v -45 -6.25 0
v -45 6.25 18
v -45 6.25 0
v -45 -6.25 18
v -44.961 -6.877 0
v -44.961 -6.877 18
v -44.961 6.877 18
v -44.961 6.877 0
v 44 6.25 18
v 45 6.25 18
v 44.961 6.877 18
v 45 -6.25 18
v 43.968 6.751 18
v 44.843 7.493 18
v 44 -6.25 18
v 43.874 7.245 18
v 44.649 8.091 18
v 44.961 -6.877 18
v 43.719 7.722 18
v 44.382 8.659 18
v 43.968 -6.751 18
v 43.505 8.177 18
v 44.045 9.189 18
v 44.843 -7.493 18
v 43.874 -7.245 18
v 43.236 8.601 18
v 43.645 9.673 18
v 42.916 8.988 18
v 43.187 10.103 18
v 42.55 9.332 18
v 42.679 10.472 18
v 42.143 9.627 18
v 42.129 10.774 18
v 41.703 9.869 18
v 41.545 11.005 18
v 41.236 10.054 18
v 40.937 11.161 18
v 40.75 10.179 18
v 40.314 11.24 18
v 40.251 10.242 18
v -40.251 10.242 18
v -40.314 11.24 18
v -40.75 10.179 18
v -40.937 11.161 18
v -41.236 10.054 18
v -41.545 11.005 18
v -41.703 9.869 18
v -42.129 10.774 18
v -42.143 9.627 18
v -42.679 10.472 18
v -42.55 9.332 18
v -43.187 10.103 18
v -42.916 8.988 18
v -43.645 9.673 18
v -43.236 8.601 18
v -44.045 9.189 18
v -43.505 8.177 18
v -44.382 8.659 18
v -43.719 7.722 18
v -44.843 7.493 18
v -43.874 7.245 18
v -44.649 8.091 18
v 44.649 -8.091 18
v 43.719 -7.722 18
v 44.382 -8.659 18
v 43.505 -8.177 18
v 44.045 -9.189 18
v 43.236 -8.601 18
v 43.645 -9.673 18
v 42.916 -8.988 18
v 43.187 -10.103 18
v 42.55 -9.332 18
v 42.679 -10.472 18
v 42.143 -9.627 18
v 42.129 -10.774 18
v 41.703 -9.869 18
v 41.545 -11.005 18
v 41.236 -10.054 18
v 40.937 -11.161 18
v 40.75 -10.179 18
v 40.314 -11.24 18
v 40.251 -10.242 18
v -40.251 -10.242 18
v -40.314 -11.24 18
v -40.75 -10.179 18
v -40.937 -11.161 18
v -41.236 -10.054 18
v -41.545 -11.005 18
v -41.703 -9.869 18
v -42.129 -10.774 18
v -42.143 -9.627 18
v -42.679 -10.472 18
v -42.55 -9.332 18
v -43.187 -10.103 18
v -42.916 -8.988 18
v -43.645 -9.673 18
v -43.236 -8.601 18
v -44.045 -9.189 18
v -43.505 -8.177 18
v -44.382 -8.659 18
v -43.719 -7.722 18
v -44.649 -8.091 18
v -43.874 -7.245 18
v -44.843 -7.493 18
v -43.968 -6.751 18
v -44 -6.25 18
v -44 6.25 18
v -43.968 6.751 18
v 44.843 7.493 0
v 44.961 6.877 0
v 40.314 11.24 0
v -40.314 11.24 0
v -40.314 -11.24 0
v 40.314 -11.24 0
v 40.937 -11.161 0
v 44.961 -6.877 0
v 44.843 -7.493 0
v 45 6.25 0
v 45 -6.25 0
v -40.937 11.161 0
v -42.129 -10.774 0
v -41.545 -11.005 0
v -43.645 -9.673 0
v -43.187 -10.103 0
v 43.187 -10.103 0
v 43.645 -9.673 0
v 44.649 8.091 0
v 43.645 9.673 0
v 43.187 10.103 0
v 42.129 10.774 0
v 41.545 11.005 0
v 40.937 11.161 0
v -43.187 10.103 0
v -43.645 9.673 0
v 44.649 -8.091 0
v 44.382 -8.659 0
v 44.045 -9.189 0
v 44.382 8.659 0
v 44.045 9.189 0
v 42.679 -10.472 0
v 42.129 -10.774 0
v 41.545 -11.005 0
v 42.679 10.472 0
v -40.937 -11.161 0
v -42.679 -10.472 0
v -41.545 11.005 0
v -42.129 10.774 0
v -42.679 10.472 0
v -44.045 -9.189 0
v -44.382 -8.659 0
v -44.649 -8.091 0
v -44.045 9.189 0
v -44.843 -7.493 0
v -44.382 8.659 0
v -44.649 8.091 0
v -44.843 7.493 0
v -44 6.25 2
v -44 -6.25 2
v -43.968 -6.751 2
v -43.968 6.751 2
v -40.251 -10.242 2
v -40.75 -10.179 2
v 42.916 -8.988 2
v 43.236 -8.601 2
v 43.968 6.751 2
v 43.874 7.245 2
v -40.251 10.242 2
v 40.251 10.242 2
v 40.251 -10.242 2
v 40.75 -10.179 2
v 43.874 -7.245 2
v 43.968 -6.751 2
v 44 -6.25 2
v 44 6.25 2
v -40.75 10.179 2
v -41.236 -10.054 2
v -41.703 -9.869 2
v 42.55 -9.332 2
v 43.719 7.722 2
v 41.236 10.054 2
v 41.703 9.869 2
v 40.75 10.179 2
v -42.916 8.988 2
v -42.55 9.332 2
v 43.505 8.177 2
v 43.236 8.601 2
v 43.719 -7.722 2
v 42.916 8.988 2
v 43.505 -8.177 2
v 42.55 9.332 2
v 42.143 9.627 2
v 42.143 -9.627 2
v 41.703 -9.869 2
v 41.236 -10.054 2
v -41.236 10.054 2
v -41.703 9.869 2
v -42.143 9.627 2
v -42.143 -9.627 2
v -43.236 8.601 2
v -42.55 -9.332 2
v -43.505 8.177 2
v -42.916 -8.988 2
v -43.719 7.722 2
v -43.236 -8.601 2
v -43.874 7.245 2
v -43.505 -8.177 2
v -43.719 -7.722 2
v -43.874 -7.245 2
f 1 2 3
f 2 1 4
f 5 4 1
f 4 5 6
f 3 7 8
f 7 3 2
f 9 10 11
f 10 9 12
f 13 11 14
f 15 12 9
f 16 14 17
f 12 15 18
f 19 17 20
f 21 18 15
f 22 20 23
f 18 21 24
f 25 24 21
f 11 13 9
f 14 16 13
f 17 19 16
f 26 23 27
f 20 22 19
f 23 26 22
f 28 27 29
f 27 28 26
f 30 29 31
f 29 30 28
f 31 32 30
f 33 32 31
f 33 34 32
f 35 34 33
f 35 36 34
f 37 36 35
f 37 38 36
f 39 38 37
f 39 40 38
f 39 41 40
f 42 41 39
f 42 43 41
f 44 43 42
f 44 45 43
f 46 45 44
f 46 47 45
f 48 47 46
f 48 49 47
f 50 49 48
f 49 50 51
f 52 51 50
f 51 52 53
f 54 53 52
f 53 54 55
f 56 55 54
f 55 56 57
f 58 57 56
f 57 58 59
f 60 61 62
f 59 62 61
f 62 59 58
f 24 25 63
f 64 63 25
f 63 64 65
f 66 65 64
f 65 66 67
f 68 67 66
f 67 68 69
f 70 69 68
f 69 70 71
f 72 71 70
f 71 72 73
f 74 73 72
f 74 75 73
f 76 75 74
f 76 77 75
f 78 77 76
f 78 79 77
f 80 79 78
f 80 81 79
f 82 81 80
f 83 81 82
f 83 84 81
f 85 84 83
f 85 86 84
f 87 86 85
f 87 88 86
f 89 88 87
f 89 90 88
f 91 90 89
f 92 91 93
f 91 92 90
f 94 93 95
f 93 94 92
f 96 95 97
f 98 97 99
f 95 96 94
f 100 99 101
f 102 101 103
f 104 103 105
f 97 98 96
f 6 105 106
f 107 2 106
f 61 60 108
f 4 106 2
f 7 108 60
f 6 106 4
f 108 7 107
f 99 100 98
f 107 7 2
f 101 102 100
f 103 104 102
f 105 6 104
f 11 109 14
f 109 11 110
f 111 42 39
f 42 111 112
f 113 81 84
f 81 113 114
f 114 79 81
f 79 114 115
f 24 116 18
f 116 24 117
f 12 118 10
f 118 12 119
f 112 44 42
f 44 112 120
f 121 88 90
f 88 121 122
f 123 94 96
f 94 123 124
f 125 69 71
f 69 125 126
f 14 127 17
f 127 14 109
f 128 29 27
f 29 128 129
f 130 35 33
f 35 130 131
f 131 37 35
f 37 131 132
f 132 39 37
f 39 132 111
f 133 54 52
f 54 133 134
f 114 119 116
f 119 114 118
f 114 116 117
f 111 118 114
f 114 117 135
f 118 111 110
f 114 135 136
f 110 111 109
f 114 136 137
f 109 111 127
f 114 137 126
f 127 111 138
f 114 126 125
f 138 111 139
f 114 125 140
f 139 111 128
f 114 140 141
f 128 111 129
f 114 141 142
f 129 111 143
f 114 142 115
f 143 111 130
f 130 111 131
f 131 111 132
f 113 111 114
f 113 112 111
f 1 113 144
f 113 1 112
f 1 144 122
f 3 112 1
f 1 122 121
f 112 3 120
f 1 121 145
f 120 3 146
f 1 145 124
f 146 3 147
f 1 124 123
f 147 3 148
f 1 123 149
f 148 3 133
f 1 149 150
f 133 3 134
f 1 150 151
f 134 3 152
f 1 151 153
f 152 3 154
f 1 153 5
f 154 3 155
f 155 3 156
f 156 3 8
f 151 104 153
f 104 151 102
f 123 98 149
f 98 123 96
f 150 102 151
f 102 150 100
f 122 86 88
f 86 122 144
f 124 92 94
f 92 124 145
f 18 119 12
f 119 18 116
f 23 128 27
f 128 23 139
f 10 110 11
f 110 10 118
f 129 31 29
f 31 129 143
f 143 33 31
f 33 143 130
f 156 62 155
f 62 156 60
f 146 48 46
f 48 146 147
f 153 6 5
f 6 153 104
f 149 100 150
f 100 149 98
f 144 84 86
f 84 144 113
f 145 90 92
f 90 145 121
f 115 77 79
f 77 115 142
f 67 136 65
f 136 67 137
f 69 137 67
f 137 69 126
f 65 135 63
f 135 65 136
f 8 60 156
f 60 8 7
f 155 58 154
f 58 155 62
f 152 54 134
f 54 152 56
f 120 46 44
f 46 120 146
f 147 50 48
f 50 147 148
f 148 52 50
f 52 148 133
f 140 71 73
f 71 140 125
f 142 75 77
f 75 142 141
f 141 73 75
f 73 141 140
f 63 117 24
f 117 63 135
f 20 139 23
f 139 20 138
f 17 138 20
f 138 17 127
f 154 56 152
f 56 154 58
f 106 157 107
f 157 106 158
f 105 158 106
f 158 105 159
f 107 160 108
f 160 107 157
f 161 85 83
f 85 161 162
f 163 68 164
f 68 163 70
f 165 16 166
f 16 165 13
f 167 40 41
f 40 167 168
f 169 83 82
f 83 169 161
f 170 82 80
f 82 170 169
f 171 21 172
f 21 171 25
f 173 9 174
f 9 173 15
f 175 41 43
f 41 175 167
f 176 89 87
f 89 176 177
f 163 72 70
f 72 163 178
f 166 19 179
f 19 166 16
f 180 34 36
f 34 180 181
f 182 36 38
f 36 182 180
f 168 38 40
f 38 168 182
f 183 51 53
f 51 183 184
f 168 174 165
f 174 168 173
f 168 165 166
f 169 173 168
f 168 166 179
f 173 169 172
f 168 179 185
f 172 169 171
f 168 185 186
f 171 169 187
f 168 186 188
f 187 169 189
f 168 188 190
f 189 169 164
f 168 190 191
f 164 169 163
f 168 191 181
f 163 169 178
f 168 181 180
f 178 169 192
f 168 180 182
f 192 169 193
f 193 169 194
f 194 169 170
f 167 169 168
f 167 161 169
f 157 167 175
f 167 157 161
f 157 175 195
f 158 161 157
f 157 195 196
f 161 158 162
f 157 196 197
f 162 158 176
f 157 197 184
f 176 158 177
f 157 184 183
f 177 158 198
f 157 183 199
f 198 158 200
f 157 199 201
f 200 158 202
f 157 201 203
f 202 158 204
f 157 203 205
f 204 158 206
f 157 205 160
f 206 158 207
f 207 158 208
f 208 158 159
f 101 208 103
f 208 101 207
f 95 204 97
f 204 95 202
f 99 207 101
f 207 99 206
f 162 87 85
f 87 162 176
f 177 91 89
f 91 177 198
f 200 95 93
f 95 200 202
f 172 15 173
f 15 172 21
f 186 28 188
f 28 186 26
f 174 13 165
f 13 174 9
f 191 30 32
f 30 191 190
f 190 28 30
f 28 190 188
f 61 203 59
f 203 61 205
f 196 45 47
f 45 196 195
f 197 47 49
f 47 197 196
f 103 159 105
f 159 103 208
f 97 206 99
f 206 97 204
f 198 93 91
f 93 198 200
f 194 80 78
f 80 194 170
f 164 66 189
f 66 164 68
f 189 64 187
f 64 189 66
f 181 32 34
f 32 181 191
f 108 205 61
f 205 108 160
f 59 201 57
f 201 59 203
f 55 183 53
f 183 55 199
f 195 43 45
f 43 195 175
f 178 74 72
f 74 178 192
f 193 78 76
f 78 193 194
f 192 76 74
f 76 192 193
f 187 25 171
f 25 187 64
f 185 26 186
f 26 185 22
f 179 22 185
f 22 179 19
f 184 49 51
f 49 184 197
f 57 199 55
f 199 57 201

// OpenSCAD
$fn = 50;


difference() {
	union() {
		hull() {
			translate(v = [-40.0000000000, 6.2500000000, 0]) {
				cylinder(h = 18, r = 5);
			}
			translate(v = [40.0000000000, 6.2500000000, 0]) {
				cylinder(h = 18, r = 5);
			}
			translate(v = [-40.0000000000, -6.2500000000, 0]) {
				cylinder(h = 18, r = 5);
			}
			translate(v = [40.0000000000, -6.2500000000, 0]) {
				cylinder(h = 18, r = 5);
			}
		}
	}
	union() {
		translate(v = [0, 0, 2]) {
			hull() {
				translate(v = [-40.0000000000, 6.2500000000, 0]) {
					cylinder(h = 16, r = 4);
				}
				translate(v = [40.0000000000, 6.2500000000, 0]) {
					cylinder(h = 16, r = 4);
				}
				translate(v = [-40.0000000000, -6.2500000000, 0]) {
					cylinder(h = 16, r = 4);
				}
				translate(v = [40.0000000000, -6.2500000000, 0]) {
					cylinder(h = 16, r = 4);
				}
			}
		}
	}
}
